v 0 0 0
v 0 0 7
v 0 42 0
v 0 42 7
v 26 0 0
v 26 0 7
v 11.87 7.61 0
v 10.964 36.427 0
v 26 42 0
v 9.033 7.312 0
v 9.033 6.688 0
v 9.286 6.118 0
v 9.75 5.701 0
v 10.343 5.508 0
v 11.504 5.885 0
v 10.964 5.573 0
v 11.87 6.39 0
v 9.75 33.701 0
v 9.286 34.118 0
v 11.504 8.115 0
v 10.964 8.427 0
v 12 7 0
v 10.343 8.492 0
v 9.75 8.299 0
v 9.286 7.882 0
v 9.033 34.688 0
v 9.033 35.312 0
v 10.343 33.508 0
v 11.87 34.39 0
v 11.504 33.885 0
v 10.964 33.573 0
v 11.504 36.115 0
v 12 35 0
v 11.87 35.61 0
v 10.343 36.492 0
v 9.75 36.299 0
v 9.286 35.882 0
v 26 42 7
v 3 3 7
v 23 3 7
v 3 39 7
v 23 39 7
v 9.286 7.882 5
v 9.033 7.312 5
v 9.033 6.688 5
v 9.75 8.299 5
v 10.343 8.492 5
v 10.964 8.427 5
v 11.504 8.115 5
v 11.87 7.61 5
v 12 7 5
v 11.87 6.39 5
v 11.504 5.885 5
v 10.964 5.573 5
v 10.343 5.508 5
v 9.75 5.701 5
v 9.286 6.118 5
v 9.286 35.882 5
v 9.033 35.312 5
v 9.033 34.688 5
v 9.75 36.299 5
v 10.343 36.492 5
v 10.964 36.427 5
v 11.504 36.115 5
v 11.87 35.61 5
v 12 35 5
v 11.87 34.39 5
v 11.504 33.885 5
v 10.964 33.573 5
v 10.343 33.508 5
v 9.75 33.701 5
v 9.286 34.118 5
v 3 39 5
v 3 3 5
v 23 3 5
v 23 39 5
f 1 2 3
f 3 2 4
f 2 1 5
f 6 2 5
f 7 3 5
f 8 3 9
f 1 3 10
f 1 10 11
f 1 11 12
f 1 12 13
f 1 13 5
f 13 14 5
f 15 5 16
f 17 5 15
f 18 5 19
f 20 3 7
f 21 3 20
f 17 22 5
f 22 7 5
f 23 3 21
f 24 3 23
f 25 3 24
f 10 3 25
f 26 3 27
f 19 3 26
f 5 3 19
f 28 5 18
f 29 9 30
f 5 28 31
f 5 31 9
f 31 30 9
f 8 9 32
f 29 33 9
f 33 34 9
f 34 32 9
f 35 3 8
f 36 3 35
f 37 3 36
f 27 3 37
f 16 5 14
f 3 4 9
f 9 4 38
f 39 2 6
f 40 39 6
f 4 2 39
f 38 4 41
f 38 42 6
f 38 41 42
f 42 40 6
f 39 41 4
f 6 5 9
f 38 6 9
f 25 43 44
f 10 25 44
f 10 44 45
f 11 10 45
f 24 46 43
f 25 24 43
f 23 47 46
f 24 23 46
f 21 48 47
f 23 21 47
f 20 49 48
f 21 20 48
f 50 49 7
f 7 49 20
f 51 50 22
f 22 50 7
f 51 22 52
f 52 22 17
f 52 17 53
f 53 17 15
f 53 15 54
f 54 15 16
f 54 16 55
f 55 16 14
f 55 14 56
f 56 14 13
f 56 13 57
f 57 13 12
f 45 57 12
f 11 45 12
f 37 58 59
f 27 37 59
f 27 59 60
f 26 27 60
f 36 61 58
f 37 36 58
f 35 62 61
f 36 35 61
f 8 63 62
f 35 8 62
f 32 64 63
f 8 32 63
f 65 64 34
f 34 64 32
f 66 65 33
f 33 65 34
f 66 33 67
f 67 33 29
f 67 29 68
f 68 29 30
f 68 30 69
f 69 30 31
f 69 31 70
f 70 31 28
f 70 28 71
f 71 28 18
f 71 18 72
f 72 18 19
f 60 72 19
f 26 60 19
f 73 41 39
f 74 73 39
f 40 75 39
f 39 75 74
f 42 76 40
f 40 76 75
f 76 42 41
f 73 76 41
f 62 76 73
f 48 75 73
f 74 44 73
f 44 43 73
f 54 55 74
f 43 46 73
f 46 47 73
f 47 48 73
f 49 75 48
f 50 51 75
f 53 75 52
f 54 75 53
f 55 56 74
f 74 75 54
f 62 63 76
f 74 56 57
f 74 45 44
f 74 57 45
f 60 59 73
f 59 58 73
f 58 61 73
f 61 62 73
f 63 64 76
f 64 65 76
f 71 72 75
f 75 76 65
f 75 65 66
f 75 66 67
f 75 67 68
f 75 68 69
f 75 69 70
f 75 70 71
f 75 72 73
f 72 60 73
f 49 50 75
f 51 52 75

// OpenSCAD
module plashka() {
difference() {
	cube([20,35,2]);
	translate([5.5,3,-1]) cylinder(4,r=1.5,$fn=15);
	translate([5.5,31,-1]) cylinder(4,r=1.5,$fn=15);
}
}

//plashka();
a=3;
b=5;
c=4;
difference() {
	cube([20+2*a,36+2*a,2+b]);
	translate([a,a,b]) {
		cube([20,36,3]);
		translate([7.5,c,-b-1]) cylinder(b+2,r=1.5,$fn=15);
		translate([7.5,36-c,-b-1]) cylinder(b+2,r=1.5,$fn=15);
	}
}
